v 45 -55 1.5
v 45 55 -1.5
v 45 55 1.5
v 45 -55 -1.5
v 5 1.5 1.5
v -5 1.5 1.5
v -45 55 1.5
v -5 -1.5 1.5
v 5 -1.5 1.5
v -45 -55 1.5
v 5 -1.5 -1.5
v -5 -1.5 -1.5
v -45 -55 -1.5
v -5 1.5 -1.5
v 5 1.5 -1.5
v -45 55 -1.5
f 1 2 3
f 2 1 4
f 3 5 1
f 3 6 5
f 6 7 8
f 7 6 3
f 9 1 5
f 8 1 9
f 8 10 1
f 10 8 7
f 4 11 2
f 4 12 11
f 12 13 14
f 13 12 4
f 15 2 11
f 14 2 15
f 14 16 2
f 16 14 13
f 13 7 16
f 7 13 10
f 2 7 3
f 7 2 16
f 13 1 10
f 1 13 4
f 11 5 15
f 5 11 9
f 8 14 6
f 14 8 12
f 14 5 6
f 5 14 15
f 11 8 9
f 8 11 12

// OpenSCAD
// ========================================
// a 90 x 110 x 3 mm plate with one 10 x 3 mm slots
// NeuroCAD canonical IR; dimensions are millimetres
// ========================================
$fn = 48;

difference() {
  cube(size=[90, 110, 3], center=true);
  cube(size=[10, 3, 5], center=true);
}
